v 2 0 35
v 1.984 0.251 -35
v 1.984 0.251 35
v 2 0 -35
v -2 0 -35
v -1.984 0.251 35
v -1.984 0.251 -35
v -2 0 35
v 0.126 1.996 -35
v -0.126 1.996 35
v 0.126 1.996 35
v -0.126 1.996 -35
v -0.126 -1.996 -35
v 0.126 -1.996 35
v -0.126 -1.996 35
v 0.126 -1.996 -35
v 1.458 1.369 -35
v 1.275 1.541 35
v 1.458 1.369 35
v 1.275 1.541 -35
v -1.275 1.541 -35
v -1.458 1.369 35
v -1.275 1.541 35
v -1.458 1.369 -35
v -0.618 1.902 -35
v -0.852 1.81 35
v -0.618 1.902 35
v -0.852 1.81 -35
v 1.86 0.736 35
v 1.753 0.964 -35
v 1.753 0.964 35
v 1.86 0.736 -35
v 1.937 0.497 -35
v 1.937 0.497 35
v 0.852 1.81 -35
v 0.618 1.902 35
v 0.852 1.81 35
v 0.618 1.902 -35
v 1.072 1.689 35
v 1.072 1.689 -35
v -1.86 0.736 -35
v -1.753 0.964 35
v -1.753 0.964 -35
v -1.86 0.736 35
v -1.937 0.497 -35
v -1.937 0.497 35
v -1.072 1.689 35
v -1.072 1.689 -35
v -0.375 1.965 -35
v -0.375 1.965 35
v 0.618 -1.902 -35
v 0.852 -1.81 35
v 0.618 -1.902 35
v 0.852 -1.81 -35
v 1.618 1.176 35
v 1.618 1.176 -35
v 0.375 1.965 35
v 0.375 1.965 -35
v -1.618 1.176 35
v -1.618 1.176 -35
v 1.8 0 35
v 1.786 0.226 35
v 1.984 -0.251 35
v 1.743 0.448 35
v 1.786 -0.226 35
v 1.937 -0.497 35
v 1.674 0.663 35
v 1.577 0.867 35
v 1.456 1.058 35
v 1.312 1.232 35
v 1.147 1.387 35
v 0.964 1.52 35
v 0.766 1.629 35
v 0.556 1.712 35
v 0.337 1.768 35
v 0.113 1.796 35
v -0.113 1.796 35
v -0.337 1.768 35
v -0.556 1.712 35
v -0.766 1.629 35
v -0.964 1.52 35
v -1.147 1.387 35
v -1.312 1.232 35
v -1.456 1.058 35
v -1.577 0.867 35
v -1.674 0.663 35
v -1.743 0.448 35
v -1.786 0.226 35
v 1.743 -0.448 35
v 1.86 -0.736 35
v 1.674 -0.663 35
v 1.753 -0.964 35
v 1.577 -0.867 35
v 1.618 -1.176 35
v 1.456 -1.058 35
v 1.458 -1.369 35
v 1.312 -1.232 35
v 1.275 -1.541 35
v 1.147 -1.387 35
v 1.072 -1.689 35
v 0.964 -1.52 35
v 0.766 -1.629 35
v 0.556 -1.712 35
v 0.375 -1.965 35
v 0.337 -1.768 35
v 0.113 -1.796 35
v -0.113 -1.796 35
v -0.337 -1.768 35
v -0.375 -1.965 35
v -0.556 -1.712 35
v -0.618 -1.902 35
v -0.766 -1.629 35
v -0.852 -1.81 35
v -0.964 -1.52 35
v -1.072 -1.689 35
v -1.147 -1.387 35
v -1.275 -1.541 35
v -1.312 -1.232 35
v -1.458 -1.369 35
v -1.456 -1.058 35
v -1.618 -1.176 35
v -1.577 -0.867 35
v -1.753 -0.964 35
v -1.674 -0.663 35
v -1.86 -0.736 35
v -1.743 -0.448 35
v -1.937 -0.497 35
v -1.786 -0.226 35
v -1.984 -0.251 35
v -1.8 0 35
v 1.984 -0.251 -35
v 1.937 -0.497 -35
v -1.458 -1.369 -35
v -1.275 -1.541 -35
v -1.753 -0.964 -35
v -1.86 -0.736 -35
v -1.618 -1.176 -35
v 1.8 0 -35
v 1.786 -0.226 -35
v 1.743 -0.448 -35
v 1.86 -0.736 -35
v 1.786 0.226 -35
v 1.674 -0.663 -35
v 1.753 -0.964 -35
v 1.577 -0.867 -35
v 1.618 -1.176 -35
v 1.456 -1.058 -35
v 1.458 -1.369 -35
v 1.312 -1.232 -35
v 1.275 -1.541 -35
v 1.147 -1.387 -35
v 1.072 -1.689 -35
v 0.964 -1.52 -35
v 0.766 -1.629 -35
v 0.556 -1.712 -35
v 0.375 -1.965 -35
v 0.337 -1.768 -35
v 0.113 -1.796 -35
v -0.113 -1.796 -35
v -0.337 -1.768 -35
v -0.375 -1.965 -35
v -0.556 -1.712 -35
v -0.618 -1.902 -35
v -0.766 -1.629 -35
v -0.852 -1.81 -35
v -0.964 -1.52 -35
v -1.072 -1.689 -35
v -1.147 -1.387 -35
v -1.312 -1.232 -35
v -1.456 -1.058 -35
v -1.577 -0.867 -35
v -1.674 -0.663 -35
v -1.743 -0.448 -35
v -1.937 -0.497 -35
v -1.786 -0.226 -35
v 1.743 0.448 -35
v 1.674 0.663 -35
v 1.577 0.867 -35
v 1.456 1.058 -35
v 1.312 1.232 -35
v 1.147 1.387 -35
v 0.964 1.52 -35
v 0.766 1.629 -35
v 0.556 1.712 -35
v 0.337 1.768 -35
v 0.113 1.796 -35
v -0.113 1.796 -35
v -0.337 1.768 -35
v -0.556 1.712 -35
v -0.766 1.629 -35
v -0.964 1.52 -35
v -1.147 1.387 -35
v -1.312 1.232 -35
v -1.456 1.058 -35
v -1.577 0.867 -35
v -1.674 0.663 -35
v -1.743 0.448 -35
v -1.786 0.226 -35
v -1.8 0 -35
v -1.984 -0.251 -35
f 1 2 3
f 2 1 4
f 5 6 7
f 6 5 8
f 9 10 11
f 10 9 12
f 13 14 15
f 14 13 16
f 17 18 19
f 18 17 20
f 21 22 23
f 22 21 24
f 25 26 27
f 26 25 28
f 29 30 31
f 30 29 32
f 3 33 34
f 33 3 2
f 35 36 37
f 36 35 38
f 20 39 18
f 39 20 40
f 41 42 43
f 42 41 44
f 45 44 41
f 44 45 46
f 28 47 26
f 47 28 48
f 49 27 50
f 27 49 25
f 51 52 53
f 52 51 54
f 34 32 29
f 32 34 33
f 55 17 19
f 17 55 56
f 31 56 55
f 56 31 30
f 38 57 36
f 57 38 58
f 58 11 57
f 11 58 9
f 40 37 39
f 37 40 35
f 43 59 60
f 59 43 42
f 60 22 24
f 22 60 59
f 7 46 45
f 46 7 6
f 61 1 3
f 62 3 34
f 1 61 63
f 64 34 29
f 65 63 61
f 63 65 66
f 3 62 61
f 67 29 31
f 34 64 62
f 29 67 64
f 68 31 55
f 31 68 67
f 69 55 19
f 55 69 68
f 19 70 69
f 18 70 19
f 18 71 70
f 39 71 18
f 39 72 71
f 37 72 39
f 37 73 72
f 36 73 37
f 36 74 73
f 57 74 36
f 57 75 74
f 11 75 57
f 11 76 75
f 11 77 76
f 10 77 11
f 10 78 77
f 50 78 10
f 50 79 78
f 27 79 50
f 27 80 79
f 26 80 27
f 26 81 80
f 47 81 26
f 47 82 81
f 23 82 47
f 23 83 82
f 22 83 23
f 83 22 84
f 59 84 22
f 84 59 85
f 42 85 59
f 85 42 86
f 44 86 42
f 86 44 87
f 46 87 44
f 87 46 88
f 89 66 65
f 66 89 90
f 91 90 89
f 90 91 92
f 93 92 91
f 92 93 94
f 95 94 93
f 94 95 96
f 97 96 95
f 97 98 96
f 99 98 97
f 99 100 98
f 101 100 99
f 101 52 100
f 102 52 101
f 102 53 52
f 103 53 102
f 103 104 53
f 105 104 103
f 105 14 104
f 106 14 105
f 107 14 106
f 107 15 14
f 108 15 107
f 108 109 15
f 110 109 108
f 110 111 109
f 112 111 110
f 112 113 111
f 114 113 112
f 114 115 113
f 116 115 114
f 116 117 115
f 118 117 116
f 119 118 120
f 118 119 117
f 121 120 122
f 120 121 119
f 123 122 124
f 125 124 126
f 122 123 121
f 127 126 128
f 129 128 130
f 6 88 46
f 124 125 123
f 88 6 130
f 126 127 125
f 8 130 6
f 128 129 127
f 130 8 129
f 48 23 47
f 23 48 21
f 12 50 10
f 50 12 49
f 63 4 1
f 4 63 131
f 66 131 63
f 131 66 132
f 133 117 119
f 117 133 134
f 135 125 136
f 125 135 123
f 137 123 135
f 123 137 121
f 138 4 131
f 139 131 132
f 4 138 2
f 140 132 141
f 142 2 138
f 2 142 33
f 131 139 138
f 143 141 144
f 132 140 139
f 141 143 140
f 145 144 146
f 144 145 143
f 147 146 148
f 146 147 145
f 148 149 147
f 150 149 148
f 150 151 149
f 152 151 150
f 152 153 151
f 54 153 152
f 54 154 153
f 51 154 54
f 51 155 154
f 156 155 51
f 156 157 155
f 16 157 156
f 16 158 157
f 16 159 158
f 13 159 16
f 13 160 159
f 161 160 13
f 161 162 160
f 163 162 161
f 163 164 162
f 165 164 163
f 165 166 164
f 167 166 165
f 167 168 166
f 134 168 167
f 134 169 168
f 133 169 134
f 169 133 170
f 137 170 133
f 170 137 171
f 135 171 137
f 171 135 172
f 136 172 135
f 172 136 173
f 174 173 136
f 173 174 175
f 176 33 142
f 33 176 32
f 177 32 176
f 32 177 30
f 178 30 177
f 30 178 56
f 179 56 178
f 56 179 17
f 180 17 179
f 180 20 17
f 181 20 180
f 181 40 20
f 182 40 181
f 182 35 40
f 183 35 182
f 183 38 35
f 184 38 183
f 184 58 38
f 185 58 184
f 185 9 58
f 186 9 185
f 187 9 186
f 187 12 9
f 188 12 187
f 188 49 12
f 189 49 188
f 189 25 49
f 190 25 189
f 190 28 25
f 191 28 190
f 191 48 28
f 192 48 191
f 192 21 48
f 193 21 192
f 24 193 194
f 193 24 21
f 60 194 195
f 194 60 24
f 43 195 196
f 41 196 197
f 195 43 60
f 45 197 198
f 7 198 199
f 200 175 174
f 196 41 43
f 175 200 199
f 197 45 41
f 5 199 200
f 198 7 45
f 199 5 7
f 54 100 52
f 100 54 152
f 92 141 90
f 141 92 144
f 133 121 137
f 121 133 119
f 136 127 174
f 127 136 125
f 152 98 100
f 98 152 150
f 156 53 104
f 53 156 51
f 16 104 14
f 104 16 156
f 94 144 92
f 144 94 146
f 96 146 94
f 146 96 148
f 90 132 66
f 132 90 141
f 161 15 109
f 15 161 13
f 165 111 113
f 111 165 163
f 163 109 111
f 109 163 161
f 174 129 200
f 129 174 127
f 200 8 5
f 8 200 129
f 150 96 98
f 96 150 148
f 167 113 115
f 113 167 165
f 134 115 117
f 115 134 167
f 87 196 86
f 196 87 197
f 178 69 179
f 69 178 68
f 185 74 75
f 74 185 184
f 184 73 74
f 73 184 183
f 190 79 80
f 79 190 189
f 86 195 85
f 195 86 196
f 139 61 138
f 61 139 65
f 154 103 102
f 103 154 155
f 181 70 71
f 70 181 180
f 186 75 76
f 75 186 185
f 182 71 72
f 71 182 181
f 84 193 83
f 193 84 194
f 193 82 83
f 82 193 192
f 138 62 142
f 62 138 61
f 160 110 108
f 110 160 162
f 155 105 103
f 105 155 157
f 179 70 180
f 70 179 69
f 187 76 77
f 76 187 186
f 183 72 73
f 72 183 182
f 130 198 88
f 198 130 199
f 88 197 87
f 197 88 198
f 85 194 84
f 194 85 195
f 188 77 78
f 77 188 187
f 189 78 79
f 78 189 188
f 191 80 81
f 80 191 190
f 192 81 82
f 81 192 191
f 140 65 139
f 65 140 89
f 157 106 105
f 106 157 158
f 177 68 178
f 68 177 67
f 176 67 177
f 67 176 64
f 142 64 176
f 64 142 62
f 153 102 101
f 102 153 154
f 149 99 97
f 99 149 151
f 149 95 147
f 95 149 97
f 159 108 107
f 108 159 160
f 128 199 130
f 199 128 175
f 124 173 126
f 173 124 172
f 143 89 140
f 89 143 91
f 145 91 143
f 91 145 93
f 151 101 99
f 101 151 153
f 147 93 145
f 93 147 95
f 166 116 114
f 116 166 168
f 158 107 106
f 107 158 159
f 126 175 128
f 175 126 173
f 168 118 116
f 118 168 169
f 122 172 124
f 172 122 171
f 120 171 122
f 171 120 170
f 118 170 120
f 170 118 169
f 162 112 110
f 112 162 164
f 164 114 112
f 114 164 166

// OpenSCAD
$fn = 50;


difference() {
	union() {
		translate(v = [0, 0, -35.0000000000]) {
			cylinder(h = 70, r = 2.0000000000);
		}
	}
	union() {
		translate(v = [0, 0, -100.0000000000]) {
			cylinder(h = 200, r = 1.8000000000);
		}
	}
}
